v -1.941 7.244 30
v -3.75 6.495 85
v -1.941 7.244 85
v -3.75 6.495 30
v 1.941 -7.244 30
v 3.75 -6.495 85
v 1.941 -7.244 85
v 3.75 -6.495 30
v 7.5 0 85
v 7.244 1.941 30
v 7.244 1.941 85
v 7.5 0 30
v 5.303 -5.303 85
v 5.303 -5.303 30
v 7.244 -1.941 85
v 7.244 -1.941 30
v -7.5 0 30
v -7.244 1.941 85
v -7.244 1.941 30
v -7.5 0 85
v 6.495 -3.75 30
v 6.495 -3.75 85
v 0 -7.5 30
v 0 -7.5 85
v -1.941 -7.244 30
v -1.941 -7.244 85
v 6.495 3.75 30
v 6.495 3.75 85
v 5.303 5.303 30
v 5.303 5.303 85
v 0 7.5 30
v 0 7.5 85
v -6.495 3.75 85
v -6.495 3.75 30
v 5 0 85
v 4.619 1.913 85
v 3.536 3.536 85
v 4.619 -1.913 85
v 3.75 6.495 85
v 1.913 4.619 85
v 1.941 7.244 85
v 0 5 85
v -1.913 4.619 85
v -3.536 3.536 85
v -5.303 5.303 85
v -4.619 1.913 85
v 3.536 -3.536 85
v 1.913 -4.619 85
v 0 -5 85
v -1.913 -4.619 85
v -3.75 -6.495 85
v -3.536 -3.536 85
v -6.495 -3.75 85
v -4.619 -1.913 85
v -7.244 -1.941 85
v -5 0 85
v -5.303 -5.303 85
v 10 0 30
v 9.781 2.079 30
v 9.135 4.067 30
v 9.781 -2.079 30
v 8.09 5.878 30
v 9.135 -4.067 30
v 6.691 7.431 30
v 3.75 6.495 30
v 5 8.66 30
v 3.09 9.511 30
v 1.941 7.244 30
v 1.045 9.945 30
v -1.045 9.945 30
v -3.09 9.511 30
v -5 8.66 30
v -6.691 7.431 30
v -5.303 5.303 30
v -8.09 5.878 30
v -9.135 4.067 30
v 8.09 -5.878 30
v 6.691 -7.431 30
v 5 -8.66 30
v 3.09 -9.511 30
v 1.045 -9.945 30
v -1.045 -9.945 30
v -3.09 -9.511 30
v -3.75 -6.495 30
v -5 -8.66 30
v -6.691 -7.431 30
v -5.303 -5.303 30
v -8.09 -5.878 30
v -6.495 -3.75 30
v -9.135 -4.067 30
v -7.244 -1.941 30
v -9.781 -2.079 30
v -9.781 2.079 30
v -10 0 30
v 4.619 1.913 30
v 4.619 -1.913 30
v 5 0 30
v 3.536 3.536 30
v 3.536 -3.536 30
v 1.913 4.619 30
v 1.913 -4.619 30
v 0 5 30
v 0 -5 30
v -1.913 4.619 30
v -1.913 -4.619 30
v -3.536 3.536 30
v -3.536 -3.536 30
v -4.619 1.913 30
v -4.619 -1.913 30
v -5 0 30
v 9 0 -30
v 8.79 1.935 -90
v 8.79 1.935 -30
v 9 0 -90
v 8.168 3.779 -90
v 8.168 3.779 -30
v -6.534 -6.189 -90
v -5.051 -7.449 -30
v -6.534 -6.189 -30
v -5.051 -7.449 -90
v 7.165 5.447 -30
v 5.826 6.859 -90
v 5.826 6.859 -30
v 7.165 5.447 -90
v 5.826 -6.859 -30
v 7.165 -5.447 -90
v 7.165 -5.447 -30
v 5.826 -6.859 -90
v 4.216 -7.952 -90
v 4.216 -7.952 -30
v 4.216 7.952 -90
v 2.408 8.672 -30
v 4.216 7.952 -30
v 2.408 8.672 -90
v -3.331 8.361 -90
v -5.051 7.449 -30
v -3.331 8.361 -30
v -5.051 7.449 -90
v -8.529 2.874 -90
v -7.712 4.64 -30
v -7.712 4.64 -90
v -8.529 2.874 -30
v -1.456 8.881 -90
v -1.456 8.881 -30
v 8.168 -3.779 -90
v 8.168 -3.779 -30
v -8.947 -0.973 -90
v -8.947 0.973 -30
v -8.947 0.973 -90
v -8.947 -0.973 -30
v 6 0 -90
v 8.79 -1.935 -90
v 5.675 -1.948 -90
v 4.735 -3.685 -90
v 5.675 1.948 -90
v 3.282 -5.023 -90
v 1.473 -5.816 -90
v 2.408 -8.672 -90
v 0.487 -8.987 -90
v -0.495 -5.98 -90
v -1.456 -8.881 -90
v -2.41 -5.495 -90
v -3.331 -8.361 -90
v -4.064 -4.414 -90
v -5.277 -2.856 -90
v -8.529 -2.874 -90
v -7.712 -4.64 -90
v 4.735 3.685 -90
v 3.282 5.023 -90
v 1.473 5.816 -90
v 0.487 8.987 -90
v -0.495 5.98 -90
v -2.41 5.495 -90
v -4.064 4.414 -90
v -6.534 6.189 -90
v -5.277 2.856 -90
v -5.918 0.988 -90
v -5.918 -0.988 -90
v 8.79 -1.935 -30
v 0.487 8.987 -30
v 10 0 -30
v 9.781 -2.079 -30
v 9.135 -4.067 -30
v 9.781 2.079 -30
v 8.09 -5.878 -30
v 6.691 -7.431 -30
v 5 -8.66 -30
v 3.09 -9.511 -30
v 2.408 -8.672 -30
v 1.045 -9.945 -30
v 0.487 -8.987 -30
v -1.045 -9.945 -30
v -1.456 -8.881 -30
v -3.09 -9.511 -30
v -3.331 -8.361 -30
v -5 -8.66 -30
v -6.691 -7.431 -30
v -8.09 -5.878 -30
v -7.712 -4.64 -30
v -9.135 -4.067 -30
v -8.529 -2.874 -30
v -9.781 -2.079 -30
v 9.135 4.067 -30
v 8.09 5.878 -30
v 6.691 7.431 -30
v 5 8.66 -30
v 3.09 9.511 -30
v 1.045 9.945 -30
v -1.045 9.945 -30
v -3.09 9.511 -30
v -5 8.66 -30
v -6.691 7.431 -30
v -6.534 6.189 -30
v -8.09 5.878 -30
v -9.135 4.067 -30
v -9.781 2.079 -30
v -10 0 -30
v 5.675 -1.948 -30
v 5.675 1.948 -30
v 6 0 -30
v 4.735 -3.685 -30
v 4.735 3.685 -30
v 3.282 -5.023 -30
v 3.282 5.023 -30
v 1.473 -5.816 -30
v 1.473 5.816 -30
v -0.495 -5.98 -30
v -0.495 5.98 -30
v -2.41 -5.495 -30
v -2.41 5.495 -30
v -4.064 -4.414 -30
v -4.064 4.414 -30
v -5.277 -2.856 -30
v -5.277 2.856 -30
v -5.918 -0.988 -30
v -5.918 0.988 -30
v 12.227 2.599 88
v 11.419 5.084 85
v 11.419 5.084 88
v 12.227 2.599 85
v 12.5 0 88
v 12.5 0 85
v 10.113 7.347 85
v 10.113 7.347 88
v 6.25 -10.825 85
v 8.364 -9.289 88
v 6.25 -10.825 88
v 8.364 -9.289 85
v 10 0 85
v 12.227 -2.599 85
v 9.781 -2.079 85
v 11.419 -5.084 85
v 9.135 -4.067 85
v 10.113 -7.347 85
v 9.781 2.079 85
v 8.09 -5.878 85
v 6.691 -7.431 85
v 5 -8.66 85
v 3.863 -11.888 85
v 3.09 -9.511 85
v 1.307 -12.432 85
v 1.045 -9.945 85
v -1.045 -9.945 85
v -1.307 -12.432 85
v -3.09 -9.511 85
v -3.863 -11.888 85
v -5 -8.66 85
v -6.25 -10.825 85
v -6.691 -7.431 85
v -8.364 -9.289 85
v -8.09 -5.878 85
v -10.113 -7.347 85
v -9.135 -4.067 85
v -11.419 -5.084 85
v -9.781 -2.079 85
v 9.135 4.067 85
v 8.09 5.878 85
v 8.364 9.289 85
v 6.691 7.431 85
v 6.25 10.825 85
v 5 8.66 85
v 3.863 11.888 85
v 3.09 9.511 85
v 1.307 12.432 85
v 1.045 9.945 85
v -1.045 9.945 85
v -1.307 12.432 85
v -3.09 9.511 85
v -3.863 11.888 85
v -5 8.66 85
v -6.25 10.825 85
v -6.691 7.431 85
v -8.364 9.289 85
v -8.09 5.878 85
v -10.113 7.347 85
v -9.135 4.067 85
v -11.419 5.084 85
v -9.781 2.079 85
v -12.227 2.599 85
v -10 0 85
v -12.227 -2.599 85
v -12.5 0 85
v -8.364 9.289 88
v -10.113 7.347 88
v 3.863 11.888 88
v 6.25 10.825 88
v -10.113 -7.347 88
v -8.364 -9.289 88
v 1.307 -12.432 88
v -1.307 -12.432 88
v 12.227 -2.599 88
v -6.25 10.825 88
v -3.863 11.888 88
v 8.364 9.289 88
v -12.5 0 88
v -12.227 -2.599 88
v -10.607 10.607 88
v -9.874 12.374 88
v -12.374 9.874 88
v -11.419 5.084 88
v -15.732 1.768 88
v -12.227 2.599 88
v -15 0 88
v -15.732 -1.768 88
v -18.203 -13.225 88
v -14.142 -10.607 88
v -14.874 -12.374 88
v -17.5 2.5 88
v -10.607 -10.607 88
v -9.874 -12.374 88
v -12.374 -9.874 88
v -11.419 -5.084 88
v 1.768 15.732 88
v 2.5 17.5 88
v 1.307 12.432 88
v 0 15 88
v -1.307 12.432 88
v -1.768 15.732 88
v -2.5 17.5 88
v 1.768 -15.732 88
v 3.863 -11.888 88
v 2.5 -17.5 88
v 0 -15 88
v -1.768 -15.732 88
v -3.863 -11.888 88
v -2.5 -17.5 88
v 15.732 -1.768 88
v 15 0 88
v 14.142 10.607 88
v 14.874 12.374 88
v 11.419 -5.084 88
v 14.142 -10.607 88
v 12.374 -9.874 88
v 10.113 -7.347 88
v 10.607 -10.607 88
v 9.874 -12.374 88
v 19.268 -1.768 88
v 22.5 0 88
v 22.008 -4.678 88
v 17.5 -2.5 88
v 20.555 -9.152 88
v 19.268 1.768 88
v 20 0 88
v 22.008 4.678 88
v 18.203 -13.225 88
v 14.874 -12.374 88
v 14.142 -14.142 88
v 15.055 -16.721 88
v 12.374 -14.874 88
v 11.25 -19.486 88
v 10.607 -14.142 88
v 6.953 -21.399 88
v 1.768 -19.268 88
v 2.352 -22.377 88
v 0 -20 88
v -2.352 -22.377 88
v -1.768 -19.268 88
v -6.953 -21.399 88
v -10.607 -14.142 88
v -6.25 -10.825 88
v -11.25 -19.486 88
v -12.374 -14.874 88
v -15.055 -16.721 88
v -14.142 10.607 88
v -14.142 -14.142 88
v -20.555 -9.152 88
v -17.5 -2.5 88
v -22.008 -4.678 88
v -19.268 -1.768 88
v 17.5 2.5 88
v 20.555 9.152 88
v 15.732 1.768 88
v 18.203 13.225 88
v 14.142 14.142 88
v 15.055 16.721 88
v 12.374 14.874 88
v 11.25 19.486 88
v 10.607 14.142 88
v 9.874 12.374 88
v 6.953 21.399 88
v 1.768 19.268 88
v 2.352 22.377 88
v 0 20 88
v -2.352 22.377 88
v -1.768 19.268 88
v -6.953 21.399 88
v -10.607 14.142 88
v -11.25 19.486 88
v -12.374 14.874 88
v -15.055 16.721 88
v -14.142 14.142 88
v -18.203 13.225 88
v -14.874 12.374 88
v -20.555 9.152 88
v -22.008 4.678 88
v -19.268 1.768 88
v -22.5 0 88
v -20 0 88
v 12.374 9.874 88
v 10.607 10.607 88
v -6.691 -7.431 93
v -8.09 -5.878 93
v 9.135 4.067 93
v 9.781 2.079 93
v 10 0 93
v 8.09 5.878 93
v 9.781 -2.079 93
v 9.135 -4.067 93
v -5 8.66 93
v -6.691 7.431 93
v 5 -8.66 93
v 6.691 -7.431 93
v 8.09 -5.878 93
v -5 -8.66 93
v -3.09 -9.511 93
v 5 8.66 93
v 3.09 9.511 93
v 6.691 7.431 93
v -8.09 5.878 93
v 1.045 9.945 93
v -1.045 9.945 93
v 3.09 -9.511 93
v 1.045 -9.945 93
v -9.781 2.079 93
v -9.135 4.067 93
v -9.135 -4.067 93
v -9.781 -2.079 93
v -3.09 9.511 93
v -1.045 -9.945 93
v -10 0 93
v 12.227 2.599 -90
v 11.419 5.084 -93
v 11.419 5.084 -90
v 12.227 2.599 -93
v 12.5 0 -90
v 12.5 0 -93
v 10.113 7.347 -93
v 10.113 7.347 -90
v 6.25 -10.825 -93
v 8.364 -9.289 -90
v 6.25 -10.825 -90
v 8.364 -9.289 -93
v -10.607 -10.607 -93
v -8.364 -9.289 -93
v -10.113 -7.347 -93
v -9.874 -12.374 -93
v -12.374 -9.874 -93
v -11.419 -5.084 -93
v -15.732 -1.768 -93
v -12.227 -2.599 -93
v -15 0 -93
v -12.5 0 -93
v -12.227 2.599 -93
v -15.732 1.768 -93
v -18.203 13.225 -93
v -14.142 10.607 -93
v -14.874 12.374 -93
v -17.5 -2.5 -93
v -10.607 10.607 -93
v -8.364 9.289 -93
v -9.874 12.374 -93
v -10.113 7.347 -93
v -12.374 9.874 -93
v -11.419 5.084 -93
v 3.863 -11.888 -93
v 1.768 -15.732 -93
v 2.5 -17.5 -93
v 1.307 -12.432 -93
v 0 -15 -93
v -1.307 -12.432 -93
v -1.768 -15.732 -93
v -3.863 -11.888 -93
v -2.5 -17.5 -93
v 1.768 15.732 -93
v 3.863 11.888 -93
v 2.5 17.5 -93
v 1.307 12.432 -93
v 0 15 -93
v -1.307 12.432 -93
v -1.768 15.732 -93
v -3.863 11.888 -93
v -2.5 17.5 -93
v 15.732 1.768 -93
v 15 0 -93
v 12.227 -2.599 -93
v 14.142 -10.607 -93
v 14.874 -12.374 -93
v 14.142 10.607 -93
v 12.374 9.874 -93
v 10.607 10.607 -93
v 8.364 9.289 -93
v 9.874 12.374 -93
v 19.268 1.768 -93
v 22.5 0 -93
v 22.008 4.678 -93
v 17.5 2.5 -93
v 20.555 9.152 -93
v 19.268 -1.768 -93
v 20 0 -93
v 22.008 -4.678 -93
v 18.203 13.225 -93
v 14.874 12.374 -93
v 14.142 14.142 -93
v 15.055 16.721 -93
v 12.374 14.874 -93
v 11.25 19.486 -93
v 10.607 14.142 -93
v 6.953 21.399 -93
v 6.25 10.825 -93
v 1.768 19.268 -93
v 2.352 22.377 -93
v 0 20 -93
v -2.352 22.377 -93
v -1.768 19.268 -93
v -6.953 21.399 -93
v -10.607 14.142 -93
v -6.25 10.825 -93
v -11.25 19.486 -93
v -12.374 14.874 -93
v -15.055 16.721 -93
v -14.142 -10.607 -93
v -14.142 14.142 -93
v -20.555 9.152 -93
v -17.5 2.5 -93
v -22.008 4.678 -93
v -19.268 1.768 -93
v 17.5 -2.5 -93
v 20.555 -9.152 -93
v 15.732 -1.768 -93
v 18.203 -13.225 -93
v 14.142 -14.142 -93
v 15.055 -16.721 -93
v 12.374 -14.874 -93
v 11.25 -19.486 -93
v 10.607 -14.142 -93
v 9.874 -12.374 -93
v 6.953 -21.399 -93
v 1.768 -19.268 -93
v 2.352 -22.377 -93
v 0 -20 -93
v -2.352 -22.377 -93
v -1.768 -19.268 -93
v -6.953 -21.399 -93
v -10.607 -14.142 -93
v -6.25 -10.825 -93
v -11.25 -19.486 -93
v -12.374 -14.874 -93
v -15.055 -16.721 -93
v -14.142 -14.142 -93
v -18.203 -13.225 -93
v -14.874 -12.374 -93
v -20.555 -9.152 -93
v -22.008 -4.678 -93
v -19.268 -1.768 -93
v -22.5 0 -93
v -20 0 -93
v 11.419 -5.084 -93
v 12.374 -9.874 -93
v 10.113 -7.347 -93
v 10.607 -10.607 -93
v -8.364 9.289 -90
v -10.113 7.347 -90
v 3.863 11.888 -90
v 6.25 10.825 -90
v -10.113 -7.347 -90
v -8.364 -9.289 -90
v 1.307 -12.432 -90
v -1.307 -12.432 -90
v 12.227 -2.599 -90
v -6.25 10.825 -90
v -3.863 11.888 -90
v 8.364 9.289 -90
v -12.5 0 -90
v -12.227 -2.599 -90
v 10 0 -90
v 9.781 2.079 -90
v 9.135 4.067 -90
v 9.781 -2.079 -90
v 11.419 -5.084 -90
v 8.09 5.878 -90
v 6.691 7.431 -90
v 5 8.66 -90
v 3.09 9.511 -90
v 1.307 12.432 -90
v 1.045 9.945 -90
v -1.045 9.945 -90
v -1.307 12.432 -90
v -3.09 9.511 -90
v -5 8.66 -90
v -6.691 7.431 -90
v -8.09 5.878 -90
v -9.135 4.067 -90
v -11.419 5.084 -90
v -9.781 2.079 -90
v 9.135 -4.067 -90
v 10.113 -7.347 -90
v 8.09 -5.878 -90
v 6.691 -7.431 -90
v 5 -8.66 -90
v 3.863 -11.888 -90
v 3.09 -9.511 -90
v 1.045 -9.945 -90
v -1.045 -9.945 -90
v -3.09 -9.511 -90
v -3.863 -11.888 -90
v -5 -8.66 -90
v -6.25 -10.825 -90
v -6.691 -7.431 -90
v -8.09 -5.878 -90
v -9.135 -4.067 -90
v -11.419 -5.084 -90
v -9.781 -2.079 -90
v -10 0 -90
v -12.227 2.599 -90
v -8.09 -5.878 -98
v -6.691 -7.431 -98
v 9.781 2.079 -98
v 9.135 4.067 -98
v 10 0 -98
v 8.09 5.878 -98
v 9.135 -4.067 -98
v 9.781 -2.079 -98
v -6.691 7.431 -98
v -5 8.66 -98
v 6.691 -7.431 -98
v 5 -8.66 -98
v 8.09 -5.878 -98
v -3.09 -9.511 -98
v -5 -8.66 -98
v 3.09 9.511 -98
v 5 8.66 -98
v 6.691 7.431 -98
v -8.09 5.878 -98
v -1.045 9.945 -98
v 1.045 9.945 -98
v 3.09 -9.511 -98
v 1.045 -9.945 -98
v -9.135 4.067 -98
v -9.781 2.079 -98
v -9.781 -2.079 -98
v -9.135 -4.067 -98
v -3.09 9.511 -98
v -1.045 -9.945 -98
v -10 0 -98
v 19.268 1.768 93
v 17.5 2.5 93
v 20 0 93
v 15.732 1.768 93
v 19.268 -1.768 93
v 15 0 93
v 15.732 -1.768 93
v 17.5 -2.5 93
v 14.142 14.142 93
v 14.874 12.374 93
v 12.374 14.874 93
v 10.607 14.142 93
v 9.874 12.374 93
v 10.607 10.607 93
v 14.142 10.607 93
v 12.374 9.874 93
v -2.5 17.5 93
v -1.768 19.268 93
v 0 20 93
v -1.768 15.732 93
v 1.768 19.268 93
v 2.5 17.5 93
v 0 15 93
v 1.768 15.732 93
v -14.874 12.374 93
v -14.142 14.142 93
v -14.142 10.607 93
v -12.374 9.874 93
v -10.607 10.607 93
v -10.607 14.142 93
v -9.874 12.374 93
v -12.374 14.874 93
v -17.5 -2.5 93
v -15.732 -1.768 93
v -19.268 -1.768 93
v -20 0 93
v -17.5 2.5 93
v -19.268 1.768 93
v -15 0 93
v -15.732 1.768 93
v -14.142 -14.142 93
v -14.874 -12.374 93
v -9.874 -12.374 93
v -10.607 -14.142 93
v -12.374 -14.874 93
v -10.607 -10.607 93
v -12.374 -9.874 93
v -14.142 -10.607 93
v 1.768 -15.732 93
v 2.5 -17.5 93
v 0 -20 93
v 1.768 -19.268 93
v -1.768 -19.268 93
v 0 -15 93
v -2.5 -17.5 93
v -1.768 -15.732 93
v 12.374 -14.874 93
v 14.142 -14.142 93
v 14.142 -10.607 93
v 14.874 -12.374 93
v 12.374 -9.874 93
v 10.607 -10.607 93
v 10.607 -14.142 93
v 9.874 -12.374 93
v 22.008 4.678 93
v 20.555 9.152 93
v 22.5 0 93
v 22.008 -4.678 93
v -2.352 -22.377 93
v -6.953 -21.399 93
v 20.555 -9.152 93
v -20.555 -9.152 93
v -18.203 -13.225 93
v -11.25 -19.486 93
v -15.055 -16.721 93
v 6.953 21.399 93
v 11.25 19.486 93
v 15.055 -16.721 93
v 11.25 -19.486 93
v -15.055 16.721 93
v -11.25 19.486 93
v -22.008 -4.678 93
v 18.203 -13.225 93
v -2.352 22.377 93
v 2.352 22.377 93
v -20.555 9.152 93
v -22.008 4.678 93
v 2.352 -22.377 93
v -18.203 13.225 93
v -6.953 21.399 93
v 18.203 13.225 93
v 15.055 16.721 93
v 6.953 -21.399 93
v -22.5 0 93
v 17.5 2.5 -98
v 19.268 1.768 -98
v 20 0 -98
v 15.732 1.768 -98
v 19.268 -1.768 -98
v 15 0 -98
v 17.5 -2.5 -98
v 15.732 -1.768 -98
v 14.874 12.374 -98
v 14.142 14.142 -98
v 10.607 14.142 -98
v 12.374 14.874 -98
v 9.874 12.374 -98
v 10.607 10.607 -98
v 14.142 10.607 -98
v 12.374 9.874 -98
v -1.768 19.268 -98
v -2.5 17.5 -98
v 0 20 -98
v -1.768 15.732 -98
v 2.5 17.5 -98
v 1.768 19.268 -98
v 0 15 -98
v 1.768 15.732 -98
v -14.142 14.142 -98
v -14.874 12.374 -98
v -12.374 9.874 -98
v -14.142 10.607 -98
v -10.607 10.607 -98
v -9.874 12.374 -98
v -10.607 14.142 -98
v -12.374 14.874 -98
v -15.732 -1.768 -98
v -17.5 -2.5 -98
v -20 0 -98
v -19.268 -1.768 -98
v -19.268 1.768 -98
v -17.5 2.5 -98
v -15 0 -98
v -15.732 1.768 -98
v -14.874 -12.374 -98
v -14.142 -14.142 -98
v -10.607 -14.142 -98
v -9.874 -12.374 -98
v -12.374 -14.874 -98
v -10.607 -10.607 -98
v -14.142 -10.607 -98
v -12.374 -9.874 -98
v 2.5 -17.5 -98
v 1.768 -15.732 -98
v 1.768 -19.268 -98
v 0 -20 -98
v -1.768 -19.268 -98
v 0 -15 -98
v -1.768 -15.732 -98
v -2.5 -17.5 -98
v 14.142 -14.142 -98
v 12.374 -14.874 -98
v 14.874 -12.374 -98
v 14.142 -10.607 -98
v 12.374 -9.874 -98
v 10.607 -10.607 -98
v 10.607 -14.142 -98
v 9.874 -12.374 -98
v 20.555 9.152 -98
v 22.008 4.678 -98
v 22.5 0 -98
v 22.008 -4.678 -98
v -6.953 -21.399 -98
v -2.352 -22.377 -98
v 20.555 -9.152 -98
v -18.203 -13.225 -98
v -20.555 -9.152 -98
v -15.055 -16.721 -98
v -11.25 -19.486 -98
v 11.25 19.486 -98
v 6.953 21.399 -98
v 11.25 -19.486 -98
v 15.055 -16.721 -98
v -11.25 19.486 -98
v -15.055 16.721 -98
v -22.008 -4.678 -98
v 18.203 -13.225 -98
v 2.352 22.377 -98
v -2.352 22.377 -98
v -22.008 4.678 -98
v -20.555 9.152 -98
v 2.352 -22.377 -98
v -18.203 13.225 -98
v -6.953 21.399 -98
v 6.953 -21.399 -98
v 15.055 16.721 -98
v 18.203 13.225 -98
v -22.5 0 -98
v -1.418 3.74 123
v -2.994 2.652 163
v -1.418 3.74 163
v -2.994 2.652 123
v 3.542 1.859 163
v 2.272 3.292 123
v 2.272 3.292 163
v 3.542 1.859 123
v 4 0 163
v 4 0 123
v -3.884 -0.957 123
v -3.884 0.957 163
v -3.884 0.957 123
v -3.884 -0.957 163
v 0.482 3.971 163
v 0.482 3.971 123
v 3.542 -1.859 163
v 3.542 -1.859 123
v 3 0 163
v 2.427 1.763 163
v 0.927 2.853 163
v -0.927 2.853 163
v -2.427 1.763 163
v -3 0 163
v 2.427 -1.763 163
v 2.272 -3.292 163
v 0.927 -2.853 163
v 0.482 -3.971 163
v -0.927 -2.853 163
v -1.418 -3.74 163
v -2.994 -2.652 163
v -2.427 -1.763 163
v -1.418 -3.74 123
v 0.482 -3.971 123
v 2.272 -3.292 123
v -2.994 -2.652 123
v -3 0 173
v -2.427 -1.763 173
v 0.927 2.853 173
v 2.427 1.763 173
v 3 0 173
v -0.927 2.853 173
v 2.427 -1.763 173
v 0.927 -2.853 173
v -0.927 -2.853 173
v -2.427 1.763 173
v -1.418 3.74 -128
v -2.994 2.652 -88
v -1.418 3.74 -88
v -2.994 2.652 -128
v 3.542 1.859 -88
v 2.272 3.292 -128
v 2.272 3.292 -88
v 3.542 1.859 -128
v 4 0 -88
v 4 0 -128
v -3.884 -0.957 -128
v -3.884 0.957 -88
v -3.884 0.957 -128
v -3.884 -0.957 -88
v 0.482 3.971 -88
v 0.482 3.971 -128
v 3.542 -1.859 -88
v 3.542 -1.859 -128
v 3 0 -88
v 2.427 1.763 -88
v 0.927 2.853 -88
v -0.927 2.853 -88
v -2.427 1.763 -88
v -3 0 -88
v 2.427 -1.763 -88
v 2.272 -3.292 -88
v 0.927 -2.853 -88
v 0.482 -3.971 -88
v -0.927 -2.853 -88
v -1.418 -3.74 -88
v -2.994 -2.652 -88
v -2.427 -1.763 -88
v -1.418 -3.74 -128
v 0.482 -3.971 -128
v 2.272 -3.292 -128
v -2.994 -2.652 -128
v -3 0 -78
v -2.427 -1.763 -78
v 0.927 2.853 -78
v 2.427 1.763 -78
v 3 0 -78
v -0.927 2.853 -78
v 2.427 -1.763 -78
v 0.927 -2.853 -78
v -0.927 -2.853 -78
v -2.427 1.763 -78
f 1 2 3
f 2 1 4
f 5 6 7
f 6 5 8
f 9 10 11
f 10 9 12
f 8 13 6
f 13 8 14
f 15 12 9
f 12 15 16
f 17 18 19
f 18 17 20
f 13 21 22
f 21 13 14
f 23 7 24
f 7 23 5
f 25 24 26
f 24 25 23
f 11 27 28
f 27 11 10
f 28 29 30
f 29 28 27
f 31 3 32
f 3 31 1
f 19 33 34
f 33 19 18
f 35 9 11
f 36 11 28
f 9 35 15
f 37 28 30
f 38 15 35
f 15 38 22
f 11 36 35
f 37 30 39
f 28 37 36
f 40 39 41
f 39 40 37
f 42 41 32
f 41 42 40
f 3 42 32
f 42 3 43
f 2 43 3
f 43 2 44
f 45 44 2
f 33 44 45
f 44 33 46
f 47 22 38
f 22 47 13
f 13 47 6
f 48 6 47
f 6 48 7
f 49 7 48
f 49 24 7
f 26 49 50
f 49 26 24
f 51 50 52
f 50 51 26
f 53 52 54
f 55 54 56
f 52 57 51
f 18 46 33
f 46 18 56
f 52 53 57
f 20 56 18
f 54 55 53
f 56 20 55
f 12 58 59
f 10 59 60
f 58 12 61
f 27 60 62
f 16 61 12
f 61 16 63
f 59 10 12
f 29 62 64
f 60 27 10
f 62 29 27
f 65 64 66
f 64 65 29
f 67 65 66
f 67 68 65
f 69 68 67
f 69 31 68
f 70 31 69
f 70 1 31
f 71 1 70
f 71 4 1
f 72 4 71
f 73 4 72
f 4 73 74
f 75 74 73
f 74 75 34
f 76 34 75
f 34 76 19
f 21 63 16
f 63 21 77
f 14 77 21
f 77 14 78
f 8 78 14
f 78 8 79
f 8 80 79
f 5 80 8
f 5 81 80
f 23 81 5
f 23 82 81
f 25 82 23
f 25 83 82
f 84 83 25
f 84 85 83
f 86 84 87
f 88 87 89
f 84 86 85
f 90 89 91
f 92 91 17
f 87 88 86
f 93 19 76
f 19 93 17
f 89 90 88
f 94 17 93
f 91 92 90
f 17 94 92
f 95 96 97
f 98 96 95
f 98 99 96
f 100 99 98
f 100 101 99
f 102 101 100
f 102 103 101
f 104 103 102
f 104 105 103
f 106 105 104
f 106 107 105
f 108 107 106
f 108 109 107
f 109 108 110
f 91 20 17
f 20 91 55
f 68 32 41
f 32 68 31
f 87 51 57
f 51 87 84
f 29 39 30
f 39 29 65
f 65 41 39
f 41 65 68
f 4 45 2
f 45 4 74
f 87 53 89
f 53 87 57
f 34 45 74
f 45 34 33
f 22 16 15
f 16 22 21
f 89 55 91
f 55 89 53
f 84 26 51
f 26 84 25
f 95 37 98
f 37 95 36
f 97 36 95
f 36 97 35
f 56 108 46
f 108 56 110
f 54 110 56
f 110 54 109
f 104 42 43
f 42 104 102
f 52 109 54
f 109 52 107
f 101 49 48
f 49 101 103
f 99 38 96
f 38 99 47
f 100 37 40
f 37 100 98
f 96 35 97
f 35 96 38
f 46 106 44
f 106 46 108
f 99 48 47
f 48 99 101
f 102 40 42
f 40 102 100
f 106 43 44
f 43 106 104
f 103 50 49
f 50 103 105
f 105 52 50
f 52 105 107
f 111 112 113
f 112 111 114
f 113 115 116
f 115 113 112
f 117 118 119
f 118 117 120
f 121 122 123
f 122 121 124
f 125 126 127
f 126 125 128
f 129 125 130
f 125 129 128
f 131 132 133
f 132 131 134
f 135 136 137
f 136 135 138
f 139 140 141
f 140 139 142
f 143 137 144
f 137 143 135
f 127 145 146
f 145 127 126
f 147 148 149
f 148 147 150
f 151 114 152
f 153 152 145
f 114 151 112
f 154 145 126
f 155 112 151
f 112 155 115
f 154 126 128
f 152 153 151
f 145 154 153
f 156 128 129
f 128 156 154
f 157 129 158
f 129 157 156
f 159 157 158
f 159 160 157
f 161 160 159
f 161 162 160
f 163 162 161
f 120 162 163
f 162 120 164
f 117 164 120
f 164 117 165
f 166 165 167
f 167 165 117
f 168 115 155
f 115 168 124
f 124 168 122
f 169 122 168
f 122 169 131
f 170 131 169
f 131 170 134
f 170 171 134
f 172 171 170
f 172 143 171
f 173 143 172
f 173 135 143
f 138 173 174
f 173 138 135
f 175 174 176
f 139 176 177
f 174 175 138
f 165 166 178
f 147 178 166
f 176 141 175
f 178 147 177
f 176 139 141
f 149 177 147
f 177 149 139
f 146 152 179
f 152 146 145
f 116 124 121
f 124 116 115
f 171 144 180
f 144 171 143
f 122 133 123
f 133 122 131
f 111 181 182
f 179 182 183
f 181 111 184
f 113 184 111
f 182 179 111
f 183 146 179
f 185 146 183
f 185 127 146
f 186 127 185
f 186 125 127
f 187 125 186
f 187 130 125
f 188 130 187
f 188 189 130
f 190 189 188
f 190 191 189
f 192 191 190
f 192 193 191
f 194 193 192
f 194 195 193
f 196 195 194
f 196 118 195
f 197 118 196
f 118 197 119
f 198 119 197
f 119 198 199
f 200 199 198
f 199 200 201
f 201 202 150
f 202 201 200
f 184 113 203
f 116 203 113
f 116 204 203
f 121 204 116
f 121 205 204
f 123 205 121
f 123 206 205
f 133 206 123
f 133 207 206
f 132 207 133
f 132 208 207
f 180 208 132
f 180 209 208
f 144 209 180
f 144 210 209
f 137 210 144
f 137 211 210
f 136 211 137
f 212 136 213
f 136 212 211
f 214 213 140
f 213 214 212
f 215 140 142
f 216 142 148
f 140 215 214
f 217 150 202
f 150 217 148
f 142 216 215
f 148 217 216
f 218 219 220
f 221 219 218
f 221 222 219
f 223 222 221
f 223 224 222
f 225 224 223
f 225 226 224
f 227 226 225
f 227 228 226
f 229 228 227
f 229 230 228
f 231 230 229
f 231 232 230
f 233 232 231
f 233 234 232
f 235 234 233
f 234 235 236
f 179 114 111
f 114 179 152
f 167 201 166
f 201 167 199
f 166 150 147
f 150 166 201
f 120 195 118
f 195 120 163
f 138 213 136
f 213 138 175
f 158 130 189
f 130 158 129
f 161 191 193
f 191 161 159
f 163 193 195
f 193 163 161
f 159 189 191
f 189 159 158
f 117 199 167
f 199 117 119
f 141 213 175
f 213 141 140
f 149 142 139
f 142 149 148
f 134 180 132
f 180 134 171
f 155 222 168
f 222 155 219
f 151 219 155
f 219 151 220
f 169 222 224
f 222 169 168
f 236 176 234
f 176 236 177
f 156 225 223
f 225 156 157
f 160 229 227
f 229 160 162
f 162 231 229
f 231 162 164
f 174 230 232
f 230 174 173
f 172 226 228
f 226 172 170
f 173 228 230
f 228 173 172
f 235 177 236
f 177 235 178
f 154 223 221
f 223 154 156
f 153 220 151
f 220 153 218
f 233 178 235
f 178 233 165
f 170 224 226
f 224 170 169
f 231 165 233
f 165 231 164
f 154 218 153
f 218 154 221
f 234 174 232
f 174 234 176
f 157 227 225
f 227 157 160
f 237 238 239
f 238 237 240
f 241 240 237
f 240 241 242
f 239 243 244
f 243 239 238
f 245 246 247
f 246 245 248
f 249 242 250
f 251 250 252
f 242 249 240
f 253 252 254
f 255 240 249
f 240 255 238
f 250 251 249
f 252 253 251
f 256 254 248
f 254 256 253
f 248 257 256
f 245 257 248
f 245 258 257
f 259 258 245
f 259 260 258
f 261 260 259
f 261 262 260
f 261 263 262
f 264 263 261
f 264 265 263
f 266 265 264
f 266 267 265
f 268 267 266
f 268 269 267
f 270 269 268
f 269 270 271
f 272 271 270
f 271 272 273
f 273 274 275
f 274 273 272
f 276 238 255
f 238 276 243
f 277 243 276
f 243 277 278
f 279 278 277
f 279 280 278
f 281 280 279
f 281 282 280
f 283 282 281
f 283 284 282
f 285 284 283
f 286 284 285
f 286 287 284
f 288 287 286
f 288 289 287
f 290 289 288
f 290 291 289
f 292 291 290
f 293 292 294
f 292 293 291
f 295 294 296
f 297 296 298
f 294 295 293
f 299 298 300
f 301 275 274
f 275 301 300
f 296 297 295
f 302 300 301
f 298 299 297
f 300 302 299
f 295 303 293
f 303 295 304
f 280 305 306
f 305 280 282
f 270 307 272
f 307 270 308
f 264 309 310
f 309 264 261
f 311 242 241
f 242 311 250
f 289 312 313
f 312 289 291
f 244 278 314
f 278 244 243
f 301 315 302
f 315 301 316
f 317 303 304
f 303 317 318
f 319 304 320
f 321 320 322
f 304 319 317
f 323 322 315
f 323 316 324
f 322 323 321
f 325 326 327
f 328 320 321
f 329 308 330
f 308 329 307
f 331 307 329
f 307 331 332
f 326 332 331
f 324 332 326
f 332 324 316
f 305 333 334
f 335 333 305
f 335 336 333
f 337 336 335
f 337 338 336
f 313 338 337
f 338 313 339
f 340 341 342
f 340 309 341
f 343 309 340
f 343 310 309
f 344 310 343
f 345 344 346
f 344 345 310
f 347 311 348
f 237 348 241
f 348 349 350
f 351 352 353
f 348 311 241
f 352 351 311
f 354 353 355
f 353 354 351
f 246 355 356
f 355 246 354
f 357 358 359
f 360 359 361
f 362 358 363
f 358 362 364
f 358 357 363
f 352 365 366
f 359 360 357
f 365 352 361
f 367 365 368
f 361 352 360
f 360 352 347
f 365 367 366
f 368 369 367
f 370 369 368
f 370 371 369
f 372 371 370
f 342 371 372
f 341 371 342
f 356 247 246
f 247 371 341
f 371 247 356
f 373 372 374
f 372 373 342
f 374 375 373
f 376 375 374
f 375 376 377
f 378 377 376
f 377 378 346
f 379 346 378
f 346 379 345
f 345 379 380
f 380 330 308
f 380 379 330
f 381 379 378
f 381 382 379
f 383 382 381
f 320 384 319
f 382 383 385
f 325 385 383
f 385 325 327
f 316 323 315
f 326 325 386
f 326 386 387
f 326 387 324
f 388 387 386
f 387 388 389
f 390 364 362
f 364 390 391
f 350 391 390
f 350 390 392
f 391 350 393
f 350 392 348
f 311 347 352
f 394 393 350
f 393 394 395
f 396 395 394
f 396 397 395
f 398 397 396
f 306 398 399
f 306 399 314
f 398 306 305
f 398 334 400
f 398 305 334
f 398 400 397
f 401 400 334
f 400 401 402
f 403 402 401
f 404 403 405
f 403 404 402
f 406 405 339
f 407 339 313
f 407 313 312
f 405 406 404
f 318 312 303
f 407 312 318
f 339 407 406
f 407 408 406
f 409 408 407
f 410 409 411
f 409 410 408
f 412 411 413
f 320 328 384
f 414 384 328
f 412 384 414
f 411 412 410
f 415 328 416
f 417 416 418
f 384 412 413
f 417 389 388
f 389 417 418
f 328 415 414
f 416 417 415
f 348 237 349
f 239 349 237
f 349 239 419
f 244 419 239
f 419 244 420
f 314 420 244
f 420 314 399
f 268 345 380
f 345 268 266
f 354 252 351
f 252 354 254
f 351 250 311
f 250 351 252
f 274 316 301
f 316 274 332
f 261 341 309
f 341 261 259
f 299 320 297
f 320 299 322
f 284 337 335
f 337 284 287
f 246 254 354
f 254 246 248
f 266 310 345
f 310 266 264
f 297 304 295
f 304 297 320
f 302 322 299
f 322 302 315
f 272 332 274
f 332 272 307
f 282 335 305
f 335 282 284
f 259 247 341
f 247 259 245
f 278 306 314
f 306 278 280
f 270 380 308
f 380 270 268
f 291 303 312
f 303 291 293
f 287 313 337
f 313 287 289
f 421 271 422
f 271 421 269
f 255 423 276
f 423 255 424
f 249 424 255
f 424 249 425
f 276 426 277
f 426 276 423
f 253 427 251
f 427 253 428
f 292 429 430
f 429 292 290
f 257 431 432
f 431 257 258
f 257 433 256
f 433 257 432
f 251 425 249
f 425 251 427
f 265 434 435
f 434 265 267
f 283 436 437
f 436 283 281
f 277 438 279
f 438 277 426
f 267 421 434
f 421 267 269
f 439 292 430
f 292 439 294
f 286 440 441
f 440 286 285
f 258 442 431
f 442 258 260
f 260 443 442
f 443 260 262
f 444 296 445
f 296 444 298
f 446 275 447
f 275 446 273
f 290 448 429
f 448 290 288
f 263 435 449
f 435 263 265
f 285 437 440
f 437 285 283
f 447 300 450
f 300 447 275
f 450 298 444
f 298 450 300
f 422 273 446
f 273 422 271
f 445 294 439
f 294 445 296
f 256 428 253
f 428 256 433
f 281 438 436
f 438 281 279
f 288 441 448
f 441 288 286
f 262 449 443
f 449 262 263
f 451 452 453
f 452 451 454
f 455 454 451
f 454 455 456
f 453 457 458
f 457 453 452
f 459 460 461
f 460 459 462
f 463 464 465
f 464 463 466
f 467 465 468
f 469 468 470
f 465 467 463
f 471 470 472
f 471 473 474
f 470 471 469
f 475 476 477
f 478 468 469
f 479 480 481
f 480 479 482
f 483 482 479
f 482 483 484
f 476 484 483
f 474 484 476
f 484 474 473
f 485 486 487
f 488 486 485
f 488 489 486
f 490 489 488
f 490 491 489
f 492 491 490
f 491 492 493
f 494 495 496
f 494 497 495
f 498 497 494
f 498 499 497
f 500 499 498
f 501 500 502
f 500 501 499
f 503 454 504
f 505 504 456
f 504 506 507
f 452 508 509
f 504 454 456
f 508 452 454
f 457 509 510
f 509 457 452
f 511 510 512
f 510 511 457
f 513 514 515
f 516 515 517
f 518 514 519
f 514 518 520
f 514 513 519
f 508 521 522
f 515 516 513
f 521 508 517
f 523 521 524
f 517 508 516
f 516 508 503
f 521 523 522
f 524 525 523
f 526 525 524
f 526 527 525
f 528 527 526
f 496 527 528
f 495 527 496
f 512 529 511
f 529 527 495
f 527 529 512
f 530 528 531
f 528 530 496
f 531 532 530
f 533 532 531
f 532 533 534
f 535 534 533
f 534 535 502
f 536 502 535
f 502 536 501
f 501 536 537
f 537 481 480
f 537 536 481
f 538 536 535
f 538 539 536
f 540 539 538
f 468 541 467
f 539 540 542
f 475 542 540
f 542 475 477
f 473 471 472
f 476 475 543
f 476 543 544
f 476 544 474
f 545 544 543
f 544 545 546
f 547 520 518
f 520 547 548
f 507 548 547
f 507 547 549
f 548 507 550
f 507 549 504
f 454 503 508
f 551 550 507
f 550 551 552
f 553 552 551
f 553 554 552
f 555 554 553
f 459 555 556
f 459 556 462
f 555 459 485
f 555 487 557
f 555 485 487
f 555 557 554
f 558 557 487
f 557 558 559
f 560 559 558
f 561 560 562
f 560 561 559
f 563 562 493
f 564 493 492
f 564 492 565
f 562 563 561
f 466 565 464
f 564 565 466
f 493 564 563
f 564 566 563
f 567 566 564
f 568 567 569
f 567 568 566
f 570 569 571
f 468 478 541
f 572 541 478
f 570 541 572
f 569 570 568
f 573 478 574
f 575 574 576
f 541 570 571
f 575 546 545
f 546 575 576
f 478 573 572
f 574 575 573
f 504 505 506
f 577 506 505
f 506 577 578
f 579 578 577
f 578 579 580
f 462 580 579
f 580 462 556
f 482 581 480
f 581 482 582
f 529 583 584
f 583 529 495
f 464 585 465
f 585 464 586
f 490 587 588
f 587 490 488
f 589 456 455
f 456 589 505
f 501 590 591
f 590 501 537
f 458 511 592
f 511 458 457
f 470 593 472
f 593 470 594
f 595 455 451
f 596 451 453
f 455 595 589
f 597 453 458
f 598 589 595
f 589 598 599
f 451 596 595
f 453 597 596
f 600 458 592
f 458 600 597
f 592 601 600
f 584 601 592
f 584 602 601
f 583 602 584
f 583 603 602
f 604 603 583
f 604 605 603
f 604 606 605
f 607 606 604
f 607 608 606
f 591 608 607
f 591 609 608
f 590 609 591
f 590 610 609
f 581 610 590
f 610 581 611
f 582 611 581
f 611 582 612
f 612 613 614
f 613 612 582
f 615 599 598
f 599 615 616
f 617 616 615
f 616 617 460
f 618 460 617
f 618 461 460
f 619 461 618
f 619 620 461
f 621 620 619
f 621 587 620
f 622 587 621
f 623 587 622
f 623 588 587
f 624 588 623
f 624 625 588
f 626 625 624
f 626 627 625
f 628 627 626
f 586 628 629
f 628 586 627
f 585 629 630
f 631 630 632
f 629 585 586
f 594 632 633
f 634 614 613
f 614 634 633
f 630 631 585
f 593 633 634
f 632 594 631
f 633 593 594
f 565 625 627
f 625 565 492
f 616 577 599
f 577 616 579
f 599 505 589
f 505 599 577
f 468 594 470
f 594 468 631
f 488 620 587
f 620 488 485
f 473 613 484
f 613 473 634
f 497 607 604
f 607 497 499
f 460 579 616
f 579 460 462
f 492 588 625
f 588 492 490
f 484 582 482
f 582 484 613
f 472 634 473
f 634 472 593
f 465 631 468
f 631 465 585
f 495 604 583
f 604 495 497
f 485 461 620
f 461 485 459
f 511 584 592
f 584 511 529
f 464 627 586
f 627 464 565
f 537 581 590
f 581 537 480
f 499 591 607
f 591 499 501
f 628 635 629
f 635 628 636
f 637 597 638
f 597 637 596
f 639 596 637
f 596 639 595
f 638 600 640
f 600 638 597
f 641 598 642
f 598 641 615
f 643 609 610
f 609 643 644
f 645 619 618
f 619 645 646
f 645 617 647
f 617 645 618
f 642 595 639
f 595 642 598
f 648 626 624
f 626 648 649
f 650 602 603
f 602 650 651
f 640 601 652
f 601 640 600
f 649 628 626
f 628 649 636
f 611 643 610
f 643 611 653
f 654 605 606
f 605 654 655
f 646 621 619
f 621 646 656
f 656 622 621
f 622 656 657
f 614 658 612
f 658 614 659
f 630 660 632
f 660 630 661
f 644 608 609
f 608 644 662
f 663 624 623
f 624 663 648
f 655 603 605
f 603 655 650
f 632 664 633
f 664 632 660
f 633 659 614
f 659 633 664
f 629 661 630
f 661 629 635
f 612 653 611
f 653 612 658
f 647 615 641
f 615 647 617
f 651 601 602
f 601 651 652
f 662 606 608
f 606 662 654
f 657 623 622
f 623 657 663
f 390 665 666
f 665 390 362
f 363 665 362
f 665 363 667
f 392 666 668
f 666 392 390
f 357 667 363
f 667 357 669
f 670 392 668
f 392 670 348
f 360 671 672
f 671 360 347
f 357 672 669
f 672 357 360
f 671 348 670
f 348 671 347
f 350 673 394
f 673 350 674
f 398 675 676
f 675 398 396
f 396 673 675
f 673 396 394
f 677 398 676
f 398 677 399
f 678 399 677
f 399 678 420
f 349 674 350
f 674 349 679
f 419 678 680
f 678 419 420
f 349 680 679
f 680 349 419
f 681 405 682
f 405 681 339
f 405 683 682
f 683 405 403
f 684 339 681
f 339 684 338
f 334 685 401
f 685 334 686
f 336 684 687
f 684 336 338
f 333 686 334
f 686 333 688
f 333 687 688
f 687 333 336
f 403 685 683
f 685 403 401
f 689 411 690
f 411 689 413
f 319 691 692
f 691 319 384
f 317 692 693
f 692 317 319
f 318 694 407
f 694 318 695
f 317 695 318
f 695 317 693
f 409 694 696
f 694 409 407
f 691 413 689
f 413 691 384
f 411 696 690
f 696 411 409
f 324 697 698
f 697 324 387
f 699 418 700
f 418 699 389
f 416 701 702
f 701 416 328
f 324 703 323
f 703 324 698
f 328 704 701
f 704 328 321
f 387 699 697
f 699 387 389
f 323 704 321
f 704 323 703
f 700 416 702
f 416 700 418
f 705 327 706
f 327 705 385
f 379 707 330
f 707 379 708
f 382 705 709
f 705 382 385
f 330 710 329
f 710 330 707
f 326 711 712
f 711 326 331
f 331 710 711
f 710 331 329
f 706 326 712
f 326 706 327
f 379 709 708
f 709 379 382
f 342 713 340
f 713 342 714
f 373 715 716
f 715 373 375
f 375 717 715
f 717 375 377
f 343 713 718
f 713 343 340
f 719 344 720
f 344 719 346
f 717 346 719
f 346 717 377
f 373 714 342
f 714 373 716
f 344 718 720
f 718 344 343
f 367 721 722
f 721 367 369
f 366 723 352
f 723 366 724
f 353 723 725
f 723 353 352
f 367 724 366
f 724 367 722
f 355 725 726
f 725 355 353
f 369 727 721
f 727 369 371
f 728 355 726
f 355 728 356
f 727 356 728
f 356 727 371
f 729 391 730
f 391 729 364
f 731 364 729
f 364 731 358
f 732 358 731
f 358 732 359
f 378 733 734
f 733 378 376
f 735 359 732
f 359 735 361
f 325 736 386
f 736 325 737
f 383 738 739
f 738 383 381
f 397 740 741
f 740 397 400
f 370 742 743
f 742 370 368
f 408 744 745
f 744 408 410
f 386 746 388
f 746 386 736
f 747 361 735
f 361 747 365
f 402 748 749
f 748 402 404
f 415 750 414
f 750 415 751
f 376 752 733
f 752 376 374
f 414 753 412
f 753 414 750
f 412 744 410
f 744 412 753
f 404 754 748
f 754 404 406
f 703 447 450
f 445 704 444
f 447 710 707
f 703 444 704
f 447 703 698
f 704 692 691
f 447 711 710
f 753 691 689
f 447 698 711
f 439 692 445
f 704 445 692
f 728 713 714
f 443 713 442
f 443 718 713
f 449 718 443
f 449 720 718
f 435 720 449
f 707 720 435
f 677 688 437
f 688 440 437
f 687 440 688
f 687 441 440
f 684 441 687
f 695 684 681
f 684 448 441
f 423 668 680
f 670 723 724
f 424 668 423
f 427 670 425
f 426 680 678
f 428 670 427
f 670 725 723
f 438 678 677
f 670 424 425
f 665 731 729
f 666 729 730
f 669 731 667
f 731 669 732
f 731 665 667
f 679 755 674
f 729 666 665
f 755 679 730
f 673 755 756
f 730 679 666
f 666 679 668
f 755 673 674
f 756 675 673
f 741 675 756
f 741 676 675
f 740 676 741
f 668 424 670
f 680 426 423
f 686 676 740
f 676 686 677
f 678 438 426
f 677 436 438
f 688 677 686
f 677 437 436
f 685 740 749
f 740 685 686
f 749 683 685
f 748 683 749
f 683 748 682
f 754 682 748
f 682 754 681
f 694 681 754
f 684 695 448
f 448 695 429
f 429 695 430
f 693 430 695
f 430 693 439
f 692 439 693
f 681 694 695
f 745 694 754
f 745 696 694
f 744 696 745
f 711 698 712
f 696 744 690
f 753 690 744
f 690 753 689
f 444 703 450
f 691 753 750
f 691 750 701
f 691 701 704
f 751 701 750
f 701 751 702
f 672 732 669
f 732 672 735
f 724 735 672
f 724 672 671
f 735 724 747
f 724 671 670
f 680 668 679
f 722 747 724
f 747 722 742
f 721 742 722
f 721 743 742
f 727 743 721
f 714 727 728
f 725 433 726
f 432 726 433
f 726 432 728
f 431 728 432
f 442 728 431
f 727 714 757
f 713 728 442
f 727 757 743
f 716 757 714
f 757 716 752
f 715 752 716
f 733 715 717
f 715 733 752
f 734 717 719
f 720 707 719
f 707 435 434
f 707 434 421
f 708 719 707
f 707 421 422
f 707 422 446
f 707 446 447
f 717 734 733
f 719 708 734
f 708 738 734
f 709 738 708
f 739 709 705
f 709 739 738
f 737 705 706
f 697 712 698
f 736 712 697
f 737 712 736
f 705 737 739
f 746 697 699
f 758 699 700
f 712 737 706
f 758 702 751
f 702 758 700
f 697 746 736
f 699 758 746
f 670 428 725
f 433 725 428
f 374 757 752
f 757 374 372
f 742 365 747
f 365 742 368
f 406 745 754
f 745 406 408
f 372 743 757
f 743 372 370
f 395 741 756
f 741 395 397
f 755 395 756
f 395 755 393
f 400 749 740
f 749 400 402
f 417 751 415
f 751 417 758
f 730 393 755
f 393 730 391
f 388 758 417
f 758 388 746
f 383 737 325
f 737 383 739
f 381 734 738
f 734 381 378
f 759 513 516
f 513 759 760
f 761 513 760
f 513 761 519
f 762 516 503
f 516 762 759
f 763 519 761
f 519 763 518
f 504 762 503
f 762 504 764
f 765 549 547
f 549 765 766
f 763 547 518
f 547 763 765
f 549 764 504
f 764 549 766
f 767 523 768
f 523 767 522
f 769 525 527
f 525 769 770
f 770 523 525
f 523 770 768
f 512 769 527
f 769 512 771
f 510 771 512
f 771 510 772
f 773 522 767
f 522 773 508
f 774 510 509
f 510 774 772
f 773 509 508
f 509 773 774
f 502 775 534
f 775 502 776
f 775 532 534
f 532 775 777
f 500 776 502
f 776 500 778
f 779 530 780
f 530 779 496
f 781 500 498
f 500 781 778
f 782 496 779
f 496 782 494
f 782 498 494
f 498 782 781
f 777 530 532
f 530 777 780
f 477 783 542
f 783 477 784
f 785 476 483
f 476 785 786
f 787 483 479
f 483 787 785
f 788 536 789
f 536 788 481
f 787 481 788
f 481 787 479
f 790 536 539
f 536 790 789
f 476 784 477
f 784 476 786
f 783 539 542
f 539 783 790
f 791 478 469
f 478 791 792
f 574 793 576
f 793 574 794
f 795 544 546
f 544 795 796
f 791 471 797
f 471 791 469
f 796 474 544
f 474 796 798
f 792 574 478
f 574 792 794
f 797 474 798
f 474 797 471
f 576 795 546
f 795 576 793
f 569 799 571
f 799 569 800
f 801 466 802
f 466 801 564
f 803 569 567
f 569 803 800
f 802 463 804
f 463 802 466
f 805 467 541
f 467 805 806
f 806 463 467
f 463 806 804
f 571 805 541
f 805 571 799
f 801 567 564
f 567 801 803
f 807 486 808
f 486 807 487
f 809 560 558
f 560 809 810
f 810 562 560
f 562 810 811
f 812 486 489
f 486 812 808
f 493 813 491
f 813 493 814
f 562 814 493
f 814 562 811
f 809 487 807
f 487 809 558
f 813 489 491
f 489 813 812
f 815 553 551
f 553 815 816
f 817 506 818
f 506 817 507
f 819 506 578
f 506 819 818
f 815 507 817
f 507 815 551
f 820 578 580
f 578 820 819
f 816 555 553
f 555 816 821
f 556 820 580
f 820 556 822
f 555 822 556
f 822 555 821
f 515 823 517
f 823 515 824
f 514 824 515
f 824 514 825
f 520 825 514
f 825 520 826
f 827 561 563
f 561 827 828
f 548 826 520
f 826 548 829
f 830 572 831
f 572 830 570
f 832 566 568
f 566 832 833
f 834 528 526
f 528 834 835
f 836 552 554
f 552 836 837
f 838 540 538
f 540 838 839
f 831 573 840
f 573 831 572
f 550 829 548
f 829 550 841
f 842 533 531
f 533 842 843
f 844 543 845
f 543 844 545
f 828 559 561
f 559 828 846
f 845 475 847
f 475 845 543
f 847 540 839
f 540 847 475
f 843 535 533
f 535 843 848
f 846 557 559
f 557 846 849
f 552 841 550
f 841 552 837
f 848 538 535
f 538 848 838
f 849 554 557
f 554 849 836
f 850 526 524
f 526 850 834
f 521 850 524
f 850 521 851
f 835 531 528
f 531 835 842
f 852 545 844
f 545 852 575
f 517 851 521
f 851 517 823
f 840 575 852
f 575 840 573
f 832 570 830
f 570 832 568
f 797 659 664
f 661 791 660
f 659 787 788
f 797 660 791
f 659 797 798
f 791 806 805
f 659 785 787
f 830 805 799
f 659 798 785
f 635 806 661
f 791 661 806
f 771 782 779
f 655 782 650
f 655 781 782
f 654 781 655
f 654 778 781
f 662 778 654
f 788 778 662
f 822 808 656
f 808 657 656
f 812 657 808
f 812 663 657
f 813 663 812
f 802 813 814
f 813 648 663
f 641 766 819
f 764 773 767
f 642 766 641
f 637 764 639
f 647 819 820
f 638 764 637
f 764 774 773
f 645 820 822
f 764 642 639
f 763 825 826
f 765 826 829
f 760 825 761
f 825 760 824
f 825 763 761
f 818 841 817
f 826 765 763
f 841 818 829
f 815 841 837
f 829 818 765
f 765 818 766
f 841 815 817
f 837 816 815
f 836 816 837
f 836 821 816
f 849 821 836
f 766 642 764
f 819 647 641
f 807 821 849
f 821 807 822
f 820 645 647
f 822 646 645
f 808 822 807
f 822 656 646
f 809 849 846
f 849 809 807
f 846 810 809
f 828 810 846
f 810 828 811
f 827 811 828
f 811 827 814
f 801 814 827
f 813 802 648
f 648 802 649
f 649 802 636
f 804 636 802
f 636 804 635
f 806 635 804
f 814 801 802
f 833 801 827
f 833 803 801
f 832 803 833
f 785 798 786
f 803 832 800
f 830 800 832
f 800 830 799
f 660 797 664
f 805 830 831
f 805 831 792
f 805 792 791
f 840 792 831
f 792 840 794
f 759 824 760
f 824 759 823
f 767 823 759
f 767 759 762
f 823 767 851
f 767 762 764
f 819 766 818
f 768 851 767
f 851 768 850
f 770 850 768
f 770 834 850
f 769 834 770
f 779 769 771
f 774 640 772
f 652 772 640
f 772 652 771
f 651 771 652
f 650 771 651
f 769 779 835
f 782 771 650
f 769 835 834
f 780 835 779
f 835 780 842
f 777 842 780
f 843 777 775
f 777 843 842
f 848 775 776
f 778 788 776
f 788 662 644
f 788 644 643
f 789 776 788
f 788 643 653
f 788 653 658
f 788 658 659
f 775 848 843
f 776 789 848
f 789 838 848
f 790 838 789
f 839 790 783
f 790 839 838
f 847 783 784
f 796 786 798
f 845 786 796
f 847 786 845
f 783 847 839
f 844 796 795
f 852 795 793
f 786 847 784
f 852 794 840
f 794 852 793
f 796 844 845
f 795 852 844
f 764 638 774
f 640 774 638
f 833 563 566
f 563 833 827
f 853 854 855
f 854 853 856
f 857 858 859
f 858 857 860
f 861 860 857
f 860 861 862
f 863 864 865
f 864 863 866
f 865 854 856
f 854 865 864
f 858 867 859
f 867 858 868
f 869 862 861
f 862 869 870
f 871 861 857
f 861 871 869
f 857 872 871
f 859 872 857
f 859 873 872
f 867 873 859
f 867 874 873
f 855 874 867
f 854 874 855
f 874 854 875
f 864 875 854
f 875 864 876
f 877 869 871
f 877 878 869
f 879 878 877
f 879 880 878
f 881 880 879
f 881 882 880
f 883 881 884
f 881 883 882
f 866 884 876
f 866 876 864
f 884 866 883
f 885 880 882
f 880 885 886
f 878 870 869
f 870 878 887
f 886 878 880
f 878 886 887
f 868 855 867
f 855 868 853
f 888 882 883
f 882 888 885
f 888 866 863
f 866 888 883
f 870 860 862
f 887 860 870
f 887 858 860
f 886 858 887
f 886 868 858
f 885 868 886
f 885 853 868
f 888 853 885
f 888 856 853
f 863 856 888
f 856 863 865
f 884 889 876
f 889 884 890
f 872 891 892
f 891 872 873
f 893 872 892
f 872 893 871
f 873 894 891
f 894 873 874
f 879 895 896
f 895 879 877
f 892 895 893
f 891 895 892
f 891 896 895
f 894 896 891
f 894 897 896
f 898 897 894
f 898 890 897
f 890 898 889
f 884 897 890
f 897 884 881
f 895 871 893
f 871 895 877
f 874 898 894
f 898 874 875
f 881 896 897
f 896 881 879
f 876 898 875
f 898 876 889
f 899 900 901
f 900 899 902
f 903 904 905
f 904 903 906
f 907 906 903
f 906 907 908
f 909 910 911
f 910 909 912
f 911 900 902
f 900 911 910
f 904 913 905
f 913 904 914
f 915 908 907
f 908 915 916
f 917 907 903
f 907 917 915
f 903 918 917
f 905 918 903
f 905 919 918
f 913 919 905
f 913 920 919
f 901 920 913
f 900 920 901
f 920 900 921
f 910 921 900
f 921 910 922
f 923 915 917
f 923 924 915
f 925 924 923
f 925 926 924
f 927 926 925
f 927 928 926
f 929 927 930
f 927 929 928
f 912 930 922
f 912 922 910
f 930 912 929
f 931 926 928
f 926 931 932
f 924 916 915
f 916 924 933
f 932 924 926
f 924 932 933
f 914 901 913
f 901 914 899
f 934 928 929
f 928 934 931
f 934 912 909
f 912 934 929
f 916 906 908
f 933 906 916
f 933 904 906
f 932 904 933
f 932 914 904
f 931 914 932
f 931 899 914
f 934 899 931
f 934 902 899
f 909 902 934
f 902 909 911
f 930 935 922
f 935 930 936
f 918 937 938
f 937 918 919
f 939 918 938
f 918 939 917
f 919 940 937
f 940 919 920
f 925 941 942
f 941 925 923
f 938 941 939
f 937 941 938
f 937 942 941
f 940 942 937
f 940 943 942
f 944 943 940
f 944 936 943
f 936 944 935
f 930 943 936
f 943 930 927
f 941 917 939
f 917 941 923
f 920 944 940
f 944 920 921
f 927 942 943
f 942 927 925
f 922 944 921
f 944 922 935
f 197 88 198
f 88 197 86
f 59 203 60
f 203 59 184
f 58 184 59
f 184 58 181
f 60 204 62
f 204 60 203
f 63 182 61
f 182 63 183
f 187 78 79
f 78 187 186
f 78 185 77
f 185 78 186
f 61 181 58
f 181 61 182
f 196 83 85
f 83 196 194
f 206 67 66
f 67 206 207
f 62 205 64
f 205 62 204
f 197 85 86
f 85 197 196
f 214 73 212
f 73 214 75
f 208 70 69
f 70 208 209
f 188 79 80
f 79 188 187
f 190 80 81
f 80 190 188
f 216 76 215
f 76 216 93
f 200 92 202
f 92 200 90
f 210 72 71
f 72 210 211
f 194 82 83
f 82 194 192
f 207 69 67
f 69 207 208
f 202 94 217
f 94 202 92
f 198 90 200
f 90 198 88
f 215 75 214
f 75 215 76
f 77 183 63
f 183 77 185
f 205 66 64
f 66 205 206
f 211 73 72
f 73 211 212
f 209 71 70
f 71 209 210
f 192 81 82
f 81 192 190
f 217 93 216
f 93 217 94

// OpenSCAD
// Parameters for the central shaft
shaft_diameter = 20; // Diameter of the central shaft
shaft_length = 60;   // Length of the central shaft

// Central Shaft
module central_shaft() {
    // Ensure a uniform cylindrical shape
    cylinder(d=shaft_diameter, h=shaft_length, center=true);
}

// Parameters for the input shaft
input_shaft_diameter = 15; // Diameter of the input shaft
input_shaft_length = 55;   // Length of the input shaft (increased to match original)
input_shaft_hole_diameter = 10; // Diameter of the hollow center (widened to match original)

// Input Shaft
module input_shaft() {
    // Adjusted length and hollow center
    difference() {
        cylinder(d=input_shaft_diameter, h=input_shaft_length, center=true);
        translate([0, 0, -input_shaft_length/2])
            cylinder(d=input_shaft_hole_diameter, h=input_shaft_length, center=false);
    }
}

// Parameters for the output shaft
output_shaft_diameter = 18; // Diameter of the output shaft
output_shaft_length = 60;   // Length of the output shaft (increased to match original)
output_shaft_hole_diameter = 12; // Diameter of the hollow center (widened to match original)

// Output Shaft
module output_shaft() {
    // Adjusted length and hollow center
    difference() {
        cylinder(d=output_shaft_diameter, h=output_shaft_length, center=true);
        translate([0, 0, -output_shaft_length/2])
            cylinder(d=output_shaft_hole_diameter, h=output_shaft_length, center=false);
    }
}

// Parameters for the spacer ring
spacer_ring_outer_diameter = 25; // Outer diameter of the spacer ring
spacer_ring_inner_diameter = 20; // Inner diameter of the spacer ring
spacer_ring_thickness = 3;       // Thickness of the spacer ring (reduced to match original)

// Spacer Ring
module spacer_ring() {
    // Adjusted thickness
    difference() {
        cylinder(d=spacer_ring_outer_diameter, h=spacer_ring_thickness, center=true);
        cylinder(d=spacer_ring_inner_diameter, h=spacer_ring_thickness + 1, center=true);
    }
}

// Parameters for the flange plate
flange_plate_outer_diameter = 45; // Outer diameter of the flange plate (increased to match original)
flange_plate_inner_diameter = 20; // Inner diameter of the flange plate
flange_plate_thickness = 5;       // Thickness of the flange plate
bolt_hole_diameter = 5;           // Diameter of the bolt holes
bolt_hole_count = 8;              // Number of bolt holes (increased to match original)

// Flange Plate
module flange_plate() {
    // Adjusted outer diameter and number of bolt holes
    difference() {
        cylinder(d=flange_plate_outer_diameter, h=flange_plate_thickness, center=true);
        cylinder(d=flange_plate_inner_diameter, h=flange_plate_thickness + 1, center=true);
        for (i = [0:360/bolt_hole_count:360-360/bolt_hole_count]) {
            rotate([0, 0, i])
                translate([flange_plate_outer_diameter/2 - 5, 0, 0])
                    cylinder(d=bolt_hole_diameter, h=flange_plate_thickness + 1, center=true);
        }
    }
}

// Parameters for the nut
nut_diameter = 8; // Diameter of the nut (reduced to match original)
nut_thickness = 5; // Thickness of the nut

// Nut
module nut() {
    // Adjusted hexagonal profile
    rotate([0, 0, 30])
        linear_extrude(height=nut_thickness)
            polygon(points=[[0, nut_diameter/2], [nut_diameter/2 * cos(PI/3), nut_diameter/2 * sin(PI/3)], 
                            [nut_diameter/2 * cos(2*PI/3), nut_diameter/2 * sin(2*PI/3)], 
                            [0, -nut_diameter/2], 
                            [-nut_diameter/2 * cos(PI/3), -nut_diameter/2 * sin(PI/3)], 
                            [-nut_diameter/2 * cos(2*PI/3), -nut_diameter/2 * sin(2*PI/3)]]);
}

// Parameters for the bolt
bolt_diameter = 8; // Diameter of the bolt
bolt_length = 50;  // Length of the bolt (increased to match original)
bolt_thread_diameter = 6; // Diameter of the threaded part

// Bolt
module bolt() {
    // Adjusted shank length
    union() {
        cylinder(d=bolt_diameter, h=bolt_length - 10, center=false);
        translate([0, 0, bolt_length - 10])
            cylinder(d=bolt_thread_diameter, h=10, center=false);
    }
}

// Render the components
translate([0, 0, 0]) {
    central_shaft();
    translate([0, 0, shaft_length/2 + input_shaft_length/2]) input_shaft();
    translate([0, 0, -shaft_length/2 - output_shaft_length/2]) output_shaft();
    translate([0, 0, shaft_length/2 + input_shaft_length + spacer_ring_thickness/2]) spacer_ring();
    translate([0, 0, -shaft_length/2 - output_shaft_length - spacer_ring_thickness/2]) spacer_ring();
    translate([0, 0, shaft_length/2 + input_shaft_length + spacer_ring_thickness + flange_plate_thickness/2]) flange_plate();
    translate([0, 0, -shaft_length/2 - output_shaft_length - spacer_ring_thickness - flange_plate_thickness/2]) flange_plate();
    translate([0, 0, shaft_length/2 + input_shaft_length + spacer_ring_thickness + flange_plate_thickness + nut_thickness/2]) nut();
    translate([0, 0, -shaft_length/2 - output_shaft_length - spacer_ring_thickness - flange_plate_thickness - nut_thickness/2]) nut();
    translate([0, 0, shaft_length/2 + input_shaft_length + spacer_ring_thickness + flange_plate_thickness + nut_thickness + bolt_length/2]) bolt();
    translate([0, 0, -shaft_length/2 - output_shaft_length - spacer_ring_thickness - flange_plate_thickness - nut_thickness - bolt_length/2]) bolt();
}
